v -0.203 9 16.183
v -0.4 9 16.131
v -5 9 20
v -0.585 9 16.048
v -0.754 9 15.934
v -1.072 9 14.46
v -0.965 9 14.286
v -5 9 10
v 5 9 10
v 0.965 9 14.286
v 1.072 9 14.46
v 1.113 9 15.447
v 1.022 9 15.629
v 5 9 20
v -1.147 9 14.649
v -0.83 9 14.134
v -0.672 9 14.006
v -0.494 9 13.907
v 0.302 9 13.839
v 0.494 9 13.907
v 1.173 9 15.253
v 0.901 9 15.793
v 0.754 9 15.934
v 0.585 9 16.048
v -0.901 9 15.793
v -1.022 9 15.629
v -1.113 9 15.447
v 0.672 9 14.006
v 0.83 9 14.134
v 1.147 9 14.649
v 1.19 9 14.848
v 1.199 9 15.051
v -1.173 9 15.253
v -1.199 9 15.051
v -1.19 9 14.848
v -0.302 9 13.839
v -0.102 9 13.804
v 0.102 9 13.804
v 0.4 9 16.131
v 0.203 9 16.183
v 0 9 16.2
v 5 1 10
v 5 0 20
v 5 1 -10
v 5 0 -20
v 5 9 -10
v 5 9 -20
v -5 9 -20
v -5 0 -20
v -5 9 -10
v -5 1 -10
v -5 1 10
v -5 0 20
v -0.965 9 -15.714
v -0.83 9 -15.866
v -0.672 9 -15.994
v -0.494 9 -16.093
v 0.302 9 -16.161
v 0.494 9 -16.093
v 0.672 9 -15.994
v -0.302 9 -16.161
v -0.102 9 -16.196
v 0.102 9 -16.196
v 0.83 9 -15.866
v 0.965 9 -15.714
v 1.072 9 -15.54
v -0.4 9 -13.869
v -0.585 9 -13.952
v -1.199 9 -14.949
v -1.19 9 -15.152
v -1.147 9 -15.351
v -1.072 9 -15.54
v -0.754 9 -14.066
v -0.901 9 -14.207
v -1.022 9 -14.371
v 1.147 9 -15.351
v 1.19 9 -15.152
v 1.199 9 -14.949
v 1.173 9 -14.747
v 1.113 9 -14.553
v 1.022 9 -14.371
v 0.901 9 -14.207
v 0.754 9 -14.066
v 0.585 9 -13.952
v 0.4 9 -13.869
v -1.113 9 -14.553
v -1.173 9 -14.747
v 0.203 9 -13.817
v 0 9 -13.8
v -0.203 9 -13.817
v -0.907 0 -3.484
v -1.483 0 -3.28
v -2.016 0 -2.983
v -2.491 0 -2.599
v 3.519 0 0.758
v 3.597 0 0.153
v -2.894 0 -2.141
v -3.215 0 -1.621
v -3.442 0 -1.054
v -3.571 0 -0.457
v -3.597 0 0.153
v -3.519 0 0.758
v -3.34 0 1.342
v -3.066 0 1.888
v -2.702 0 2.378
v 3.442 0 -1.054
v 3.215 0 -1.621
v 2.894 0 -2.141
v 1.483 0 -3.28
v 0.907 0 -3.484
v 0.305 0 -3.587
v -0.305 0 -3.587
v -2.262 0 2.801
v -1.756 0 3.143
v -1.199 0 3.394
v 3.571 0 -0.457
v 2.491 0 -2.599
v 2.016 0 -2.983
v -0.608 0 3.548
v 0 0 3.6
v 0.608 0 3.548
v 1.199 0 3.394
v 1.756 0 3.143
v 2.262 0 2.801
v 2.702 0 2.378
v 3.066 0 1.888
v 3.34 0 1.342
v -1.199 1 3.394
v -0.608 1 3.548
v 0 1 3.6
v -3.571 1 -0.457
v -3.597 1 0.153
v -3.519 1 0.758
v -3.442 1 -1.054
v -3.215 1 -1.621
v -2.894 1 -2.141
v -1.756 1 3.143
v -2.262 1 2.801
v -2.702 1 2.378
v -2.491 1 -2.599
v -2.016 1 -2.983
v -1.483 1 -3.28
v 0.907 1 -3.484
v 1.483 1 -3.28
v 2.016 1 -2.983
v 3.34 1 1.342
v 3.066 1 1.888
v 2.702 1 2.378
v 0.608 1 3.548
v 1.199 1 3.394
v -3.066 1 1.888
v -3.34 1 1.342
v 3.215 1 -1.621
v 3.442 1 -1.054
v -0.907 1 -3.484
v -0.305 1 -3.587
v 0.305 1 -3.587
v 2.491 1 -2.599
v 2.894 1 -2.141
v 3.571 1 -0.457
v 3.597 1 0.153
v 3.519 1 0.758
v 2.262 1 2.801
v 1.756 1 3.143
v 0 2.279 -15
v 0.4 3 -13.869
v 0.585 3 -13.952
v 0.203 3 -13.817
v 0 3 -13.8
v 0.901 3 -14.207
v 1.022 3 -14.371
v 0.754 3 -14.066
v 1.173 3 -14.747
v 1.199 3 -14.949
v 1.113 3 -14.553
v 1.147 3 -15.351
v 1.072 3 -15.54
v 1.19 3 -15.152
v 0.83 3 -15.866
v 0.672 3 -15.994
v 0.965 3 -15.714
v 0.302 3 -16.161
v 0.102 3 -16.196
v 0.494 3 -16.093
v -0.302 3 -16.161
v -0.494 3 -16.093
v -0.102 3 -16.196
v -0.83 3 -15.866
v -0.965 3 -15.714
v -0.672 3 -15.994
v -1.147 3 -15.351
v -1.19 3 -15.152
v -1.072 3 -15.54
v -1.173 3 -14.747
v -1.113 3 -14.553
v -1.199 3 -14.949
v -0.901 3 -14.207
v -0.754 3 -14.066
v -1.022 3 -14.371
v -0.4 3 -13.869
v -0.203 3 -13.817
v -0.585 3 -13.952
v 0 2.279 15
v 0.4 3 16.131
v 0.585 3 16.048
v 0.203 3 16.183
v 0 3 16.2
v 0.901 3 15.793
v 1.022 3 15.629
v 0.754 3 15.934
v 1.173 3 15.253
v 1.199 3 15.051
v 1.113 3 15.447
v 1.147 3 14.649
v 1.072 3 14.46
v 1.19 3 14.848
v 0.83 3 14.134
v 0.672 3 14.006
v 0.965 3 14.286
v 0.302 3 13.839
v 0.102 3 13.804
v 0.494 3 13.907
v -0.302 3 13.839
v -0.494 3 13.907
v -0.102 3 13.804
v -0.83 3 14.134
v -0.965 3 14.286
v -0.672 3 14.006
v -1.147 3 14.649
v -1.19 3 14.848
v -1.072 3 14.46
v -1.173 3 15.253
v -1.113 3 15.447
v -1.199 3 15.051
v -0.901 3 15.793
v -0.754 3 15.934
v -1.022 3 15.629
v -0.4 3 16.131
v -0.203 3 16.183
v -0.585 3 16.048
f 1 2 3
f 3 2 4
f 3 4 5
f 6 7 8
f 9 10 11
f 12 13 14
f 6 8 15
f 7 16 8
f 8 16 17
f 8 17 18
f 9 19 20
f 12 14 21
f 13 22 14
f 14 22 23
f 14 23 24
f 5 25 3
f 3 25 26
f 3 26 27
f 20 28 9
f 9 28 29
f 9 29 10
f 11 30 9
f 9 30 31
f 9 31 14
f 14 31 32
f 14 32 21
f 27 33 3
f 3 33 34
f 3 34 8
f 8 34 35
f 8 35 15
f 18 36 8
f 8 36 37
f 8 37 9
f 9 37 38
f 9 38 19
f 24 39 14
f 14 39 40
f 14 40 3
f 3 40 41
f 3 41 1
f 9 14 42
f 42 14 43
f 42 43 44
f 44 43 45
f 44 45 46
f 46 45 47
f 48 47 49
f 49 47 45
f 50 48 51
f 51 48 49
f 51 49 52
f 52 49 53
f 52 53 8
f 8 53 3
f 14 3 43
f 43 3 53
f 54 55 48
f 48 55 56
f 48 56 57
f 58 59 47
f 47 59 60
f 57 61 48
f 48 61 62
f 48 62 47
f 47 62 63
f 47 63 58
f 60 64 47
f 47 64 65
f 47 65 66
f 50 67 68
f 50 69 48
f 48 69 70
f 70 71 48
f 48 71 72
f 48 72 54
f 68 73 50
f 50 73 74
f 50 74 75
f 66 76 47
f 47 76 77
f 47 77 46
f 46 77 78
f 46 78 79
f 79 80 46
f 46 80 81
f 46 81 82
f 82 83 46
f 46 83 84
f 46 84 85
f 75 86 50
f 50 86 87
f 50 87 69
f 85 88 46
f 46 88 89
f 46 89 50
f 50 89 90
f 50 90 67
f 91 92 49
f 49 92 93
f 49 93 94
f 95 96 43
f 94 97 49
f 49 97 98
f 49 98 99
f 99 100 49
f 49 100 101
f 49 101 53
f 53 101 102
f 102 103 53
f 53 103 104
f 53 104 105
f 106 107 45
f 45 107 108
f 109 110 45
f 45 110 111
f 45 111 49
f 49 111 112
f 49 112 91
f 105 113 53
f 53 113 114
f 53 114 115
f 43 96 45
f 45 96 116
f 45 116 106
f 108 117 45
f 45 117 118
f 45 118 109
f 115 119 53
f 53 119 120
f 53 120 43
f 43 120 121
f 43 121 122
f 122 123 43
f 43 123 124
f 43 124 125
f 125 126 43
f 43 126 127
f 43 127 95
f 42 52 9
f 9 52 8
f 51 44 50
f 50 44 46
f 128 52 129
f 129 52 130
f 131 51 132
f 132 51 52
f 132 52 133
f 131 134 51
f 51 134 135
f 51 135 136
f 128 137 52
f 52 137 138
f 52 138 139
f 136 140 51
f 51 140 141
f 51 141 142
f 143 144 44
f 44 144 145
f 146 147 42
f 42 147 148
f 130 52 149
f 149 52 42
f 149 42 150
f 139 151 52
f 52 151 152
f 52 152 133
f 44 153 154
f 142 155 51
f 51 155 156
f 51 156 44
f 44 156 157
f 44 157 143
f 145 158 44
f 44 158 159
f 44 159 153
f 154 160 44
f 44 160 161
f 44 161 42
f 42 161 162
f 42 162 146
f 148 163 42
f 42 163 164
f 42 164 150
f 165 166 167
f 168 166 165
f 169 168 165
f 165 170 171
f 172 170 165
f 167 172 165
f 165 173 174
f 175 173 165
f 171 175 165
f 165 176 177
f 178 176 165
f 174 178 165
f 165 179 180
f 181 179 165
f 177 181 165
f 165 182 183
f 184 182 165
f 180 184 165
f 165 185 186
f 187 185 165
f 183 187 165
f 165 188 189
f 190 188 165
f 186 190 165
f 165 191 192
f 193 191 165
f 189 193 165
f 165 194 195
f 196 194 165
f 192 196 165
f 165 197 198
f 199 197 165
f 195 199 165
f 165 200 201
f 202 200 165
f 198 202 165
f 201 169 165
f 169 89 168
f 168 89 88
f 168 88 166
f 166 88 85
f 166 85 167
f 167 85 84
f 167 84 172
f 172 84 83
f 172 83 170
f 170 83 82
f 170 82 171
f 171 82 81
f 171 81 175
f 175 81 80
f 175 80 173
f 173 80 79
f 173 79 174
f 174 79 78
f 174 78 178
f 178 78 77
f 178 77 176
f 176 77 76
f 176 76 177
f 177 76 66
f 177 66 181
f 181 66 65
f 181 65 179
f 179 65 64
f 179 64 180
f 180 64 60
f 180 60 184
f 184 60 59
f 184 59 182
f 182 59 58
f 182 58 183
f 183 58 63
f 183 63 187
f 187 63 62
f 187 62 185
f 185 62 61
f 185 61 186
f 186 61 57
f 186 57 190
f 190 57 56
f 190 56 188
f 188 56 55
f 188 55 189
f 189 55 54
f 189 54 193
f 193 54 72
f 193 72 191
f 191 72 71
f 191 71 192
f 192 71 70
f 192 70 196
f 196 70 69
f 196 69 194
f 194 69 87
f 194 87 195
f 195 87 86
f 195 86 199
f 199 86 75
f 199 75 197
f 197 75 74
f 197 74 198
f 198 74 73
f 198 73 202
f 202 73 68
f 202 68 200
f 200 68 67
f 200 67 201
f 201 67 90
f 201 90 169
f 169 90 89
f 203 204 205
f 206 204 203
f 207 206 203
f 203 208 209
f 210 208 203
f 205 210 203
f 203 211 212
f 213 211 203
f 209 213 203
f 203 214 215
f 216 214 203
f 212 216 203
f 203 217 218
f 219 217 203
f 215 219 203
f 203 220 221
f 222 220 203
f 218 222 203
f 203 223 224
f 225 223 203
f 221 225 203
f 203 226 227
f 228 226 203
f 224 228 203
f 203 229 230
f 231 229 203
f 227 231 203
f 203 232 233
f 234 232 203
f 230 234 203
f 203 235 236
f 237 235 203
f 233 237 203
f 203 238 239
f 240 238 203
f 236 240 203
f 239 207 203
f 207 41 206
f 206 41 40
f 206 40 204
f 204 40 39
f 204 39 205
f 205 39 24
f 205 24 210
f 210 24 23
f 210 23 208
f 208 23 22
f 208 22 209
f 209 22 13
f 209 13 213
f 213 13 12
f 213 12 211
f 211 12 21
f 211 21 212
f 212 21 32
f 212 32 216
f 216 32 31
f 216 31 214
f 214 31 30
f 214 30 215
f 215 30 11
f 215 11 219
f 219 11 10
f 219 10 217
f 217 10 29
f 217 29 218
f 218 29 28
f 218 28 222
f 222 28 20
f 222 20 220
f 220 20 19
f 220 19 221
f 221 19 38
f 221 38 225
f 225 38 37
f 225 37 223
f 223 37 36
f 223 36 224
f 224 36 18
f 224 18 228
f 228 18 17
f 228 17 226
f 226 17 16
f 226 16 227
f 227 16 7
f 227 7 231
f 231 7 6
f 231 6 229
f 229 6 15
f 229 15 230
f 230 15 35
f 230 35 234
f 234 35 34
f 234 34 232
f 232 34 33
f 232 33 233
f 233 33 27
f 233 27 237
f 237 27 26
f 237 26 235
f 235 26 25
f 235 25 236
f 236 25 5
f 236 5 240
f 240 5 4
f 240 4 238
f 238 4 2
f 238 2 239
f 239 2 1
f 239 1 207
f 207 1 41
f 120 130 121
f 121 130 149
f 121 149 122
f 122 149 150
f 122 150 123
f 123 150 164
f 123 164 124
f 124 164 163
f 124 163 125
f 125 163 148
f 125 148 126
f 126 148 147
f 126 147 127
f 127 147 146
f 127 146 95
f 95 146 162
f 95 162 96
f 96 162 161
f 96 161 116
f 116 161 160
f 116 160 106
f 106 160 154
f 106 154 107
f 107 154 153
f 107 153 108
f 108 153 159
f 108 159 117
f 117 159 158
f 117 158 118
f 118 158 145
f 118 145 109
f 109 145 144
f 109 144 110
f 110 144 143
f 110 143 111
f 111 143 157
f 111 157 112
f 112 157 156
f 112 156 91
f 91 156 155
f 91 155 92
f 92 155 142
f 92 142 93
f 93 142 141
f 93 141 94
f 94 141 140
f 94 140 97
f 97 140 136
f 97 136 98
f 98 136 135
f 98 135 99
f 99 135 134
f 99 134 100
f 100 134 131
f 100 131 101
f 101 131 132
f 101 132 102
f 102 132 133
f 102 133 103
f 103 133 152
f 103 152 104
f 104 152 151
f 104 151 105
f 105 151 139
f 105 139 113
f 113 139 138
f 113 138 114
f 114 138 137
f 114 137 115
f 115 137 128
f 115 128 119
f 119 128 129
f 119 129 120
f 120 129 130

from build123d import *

# Parameters (mm, degrees)
SCHIZZO1_W                   = 10
SCHIZZO1_H                   = 40
ESTRUSIONE_ESTRUSIONE1_DEPTH = 9
SCHIZZO2_W                   = 10
SCHIZZO2_H                   = 20
TAGLIO_ESTRUSIONE1_DEPTH     = 8
FORO_PER_VITE_M2_1_D         = 2.4
FORO_PER_VITE_M2_1_DEPTH     = 6
FORO_PER_VITE_M2_1_TIP       = 0.721032743
FORO_PER_VITE_M2_2_D         = 7.2


with BuildPart() as part:
    # Schizzo1 → Estrusione-Estrusione1 (new body)
    with BuildSketch(Plane(origin=(0, 0, 0), x_dir=(1, 0, 0), z_dir=(0, 1, 0))):
        Rectangle(SCHIZZO1_W, SCHIZZO1_H)
    extrude(amount=ESTRUSIONE_ESTRUSIONE1_DEPTH)

    # Schizzo2 → Taglio-Estrusione1 (cut)
    with BuildSketch(Plane(origin=(0, 9, 0), x_dir=(1, 0, 0), z_dir=(0, 1, 0))):
        Rectangle(SCHIZZO2_W, SCHIZZO2_H)
    extrude(amount=-TAGLIO_ESTRUSIONE1_DEPTH, mode=Mode.SUBTRACT)

    # Foro per Vite M2-1
    with Locations(Plane(origin=(0, 9, 0), x_dir=(1, 0, 0), z_dir=(0, 1, 0))):
        with Locations((0, -15), (0, 15)):
            Hole(FORO_PER_VITE_M2_1_D / 2, depth=FORO_PER_VITE_M2_1_DEPTH)
            with Locations((0, 0, -(FORO_PER_VITE_M2_1_DEPTH + FORO_PER_VITE_M2_1_TIP / 2))):  # 118° drill point
                Cone(0, FORO_PER_VITE_M2_1_D / 2, FORO_PER_VITE_M2_1_TIP, mode=Mode.SUBTRACT)

    # Foro per Vite M2-2 (through all)
    with Locations(Plane(origin=(0, 1, 0), x_dir=(1, 0, 0), z_dir=(0, 1, 0))):
        with Locations((0, 0)):
            Hole(FORO_PER_VITE_M2_2_D / 2)


solid = part.part
